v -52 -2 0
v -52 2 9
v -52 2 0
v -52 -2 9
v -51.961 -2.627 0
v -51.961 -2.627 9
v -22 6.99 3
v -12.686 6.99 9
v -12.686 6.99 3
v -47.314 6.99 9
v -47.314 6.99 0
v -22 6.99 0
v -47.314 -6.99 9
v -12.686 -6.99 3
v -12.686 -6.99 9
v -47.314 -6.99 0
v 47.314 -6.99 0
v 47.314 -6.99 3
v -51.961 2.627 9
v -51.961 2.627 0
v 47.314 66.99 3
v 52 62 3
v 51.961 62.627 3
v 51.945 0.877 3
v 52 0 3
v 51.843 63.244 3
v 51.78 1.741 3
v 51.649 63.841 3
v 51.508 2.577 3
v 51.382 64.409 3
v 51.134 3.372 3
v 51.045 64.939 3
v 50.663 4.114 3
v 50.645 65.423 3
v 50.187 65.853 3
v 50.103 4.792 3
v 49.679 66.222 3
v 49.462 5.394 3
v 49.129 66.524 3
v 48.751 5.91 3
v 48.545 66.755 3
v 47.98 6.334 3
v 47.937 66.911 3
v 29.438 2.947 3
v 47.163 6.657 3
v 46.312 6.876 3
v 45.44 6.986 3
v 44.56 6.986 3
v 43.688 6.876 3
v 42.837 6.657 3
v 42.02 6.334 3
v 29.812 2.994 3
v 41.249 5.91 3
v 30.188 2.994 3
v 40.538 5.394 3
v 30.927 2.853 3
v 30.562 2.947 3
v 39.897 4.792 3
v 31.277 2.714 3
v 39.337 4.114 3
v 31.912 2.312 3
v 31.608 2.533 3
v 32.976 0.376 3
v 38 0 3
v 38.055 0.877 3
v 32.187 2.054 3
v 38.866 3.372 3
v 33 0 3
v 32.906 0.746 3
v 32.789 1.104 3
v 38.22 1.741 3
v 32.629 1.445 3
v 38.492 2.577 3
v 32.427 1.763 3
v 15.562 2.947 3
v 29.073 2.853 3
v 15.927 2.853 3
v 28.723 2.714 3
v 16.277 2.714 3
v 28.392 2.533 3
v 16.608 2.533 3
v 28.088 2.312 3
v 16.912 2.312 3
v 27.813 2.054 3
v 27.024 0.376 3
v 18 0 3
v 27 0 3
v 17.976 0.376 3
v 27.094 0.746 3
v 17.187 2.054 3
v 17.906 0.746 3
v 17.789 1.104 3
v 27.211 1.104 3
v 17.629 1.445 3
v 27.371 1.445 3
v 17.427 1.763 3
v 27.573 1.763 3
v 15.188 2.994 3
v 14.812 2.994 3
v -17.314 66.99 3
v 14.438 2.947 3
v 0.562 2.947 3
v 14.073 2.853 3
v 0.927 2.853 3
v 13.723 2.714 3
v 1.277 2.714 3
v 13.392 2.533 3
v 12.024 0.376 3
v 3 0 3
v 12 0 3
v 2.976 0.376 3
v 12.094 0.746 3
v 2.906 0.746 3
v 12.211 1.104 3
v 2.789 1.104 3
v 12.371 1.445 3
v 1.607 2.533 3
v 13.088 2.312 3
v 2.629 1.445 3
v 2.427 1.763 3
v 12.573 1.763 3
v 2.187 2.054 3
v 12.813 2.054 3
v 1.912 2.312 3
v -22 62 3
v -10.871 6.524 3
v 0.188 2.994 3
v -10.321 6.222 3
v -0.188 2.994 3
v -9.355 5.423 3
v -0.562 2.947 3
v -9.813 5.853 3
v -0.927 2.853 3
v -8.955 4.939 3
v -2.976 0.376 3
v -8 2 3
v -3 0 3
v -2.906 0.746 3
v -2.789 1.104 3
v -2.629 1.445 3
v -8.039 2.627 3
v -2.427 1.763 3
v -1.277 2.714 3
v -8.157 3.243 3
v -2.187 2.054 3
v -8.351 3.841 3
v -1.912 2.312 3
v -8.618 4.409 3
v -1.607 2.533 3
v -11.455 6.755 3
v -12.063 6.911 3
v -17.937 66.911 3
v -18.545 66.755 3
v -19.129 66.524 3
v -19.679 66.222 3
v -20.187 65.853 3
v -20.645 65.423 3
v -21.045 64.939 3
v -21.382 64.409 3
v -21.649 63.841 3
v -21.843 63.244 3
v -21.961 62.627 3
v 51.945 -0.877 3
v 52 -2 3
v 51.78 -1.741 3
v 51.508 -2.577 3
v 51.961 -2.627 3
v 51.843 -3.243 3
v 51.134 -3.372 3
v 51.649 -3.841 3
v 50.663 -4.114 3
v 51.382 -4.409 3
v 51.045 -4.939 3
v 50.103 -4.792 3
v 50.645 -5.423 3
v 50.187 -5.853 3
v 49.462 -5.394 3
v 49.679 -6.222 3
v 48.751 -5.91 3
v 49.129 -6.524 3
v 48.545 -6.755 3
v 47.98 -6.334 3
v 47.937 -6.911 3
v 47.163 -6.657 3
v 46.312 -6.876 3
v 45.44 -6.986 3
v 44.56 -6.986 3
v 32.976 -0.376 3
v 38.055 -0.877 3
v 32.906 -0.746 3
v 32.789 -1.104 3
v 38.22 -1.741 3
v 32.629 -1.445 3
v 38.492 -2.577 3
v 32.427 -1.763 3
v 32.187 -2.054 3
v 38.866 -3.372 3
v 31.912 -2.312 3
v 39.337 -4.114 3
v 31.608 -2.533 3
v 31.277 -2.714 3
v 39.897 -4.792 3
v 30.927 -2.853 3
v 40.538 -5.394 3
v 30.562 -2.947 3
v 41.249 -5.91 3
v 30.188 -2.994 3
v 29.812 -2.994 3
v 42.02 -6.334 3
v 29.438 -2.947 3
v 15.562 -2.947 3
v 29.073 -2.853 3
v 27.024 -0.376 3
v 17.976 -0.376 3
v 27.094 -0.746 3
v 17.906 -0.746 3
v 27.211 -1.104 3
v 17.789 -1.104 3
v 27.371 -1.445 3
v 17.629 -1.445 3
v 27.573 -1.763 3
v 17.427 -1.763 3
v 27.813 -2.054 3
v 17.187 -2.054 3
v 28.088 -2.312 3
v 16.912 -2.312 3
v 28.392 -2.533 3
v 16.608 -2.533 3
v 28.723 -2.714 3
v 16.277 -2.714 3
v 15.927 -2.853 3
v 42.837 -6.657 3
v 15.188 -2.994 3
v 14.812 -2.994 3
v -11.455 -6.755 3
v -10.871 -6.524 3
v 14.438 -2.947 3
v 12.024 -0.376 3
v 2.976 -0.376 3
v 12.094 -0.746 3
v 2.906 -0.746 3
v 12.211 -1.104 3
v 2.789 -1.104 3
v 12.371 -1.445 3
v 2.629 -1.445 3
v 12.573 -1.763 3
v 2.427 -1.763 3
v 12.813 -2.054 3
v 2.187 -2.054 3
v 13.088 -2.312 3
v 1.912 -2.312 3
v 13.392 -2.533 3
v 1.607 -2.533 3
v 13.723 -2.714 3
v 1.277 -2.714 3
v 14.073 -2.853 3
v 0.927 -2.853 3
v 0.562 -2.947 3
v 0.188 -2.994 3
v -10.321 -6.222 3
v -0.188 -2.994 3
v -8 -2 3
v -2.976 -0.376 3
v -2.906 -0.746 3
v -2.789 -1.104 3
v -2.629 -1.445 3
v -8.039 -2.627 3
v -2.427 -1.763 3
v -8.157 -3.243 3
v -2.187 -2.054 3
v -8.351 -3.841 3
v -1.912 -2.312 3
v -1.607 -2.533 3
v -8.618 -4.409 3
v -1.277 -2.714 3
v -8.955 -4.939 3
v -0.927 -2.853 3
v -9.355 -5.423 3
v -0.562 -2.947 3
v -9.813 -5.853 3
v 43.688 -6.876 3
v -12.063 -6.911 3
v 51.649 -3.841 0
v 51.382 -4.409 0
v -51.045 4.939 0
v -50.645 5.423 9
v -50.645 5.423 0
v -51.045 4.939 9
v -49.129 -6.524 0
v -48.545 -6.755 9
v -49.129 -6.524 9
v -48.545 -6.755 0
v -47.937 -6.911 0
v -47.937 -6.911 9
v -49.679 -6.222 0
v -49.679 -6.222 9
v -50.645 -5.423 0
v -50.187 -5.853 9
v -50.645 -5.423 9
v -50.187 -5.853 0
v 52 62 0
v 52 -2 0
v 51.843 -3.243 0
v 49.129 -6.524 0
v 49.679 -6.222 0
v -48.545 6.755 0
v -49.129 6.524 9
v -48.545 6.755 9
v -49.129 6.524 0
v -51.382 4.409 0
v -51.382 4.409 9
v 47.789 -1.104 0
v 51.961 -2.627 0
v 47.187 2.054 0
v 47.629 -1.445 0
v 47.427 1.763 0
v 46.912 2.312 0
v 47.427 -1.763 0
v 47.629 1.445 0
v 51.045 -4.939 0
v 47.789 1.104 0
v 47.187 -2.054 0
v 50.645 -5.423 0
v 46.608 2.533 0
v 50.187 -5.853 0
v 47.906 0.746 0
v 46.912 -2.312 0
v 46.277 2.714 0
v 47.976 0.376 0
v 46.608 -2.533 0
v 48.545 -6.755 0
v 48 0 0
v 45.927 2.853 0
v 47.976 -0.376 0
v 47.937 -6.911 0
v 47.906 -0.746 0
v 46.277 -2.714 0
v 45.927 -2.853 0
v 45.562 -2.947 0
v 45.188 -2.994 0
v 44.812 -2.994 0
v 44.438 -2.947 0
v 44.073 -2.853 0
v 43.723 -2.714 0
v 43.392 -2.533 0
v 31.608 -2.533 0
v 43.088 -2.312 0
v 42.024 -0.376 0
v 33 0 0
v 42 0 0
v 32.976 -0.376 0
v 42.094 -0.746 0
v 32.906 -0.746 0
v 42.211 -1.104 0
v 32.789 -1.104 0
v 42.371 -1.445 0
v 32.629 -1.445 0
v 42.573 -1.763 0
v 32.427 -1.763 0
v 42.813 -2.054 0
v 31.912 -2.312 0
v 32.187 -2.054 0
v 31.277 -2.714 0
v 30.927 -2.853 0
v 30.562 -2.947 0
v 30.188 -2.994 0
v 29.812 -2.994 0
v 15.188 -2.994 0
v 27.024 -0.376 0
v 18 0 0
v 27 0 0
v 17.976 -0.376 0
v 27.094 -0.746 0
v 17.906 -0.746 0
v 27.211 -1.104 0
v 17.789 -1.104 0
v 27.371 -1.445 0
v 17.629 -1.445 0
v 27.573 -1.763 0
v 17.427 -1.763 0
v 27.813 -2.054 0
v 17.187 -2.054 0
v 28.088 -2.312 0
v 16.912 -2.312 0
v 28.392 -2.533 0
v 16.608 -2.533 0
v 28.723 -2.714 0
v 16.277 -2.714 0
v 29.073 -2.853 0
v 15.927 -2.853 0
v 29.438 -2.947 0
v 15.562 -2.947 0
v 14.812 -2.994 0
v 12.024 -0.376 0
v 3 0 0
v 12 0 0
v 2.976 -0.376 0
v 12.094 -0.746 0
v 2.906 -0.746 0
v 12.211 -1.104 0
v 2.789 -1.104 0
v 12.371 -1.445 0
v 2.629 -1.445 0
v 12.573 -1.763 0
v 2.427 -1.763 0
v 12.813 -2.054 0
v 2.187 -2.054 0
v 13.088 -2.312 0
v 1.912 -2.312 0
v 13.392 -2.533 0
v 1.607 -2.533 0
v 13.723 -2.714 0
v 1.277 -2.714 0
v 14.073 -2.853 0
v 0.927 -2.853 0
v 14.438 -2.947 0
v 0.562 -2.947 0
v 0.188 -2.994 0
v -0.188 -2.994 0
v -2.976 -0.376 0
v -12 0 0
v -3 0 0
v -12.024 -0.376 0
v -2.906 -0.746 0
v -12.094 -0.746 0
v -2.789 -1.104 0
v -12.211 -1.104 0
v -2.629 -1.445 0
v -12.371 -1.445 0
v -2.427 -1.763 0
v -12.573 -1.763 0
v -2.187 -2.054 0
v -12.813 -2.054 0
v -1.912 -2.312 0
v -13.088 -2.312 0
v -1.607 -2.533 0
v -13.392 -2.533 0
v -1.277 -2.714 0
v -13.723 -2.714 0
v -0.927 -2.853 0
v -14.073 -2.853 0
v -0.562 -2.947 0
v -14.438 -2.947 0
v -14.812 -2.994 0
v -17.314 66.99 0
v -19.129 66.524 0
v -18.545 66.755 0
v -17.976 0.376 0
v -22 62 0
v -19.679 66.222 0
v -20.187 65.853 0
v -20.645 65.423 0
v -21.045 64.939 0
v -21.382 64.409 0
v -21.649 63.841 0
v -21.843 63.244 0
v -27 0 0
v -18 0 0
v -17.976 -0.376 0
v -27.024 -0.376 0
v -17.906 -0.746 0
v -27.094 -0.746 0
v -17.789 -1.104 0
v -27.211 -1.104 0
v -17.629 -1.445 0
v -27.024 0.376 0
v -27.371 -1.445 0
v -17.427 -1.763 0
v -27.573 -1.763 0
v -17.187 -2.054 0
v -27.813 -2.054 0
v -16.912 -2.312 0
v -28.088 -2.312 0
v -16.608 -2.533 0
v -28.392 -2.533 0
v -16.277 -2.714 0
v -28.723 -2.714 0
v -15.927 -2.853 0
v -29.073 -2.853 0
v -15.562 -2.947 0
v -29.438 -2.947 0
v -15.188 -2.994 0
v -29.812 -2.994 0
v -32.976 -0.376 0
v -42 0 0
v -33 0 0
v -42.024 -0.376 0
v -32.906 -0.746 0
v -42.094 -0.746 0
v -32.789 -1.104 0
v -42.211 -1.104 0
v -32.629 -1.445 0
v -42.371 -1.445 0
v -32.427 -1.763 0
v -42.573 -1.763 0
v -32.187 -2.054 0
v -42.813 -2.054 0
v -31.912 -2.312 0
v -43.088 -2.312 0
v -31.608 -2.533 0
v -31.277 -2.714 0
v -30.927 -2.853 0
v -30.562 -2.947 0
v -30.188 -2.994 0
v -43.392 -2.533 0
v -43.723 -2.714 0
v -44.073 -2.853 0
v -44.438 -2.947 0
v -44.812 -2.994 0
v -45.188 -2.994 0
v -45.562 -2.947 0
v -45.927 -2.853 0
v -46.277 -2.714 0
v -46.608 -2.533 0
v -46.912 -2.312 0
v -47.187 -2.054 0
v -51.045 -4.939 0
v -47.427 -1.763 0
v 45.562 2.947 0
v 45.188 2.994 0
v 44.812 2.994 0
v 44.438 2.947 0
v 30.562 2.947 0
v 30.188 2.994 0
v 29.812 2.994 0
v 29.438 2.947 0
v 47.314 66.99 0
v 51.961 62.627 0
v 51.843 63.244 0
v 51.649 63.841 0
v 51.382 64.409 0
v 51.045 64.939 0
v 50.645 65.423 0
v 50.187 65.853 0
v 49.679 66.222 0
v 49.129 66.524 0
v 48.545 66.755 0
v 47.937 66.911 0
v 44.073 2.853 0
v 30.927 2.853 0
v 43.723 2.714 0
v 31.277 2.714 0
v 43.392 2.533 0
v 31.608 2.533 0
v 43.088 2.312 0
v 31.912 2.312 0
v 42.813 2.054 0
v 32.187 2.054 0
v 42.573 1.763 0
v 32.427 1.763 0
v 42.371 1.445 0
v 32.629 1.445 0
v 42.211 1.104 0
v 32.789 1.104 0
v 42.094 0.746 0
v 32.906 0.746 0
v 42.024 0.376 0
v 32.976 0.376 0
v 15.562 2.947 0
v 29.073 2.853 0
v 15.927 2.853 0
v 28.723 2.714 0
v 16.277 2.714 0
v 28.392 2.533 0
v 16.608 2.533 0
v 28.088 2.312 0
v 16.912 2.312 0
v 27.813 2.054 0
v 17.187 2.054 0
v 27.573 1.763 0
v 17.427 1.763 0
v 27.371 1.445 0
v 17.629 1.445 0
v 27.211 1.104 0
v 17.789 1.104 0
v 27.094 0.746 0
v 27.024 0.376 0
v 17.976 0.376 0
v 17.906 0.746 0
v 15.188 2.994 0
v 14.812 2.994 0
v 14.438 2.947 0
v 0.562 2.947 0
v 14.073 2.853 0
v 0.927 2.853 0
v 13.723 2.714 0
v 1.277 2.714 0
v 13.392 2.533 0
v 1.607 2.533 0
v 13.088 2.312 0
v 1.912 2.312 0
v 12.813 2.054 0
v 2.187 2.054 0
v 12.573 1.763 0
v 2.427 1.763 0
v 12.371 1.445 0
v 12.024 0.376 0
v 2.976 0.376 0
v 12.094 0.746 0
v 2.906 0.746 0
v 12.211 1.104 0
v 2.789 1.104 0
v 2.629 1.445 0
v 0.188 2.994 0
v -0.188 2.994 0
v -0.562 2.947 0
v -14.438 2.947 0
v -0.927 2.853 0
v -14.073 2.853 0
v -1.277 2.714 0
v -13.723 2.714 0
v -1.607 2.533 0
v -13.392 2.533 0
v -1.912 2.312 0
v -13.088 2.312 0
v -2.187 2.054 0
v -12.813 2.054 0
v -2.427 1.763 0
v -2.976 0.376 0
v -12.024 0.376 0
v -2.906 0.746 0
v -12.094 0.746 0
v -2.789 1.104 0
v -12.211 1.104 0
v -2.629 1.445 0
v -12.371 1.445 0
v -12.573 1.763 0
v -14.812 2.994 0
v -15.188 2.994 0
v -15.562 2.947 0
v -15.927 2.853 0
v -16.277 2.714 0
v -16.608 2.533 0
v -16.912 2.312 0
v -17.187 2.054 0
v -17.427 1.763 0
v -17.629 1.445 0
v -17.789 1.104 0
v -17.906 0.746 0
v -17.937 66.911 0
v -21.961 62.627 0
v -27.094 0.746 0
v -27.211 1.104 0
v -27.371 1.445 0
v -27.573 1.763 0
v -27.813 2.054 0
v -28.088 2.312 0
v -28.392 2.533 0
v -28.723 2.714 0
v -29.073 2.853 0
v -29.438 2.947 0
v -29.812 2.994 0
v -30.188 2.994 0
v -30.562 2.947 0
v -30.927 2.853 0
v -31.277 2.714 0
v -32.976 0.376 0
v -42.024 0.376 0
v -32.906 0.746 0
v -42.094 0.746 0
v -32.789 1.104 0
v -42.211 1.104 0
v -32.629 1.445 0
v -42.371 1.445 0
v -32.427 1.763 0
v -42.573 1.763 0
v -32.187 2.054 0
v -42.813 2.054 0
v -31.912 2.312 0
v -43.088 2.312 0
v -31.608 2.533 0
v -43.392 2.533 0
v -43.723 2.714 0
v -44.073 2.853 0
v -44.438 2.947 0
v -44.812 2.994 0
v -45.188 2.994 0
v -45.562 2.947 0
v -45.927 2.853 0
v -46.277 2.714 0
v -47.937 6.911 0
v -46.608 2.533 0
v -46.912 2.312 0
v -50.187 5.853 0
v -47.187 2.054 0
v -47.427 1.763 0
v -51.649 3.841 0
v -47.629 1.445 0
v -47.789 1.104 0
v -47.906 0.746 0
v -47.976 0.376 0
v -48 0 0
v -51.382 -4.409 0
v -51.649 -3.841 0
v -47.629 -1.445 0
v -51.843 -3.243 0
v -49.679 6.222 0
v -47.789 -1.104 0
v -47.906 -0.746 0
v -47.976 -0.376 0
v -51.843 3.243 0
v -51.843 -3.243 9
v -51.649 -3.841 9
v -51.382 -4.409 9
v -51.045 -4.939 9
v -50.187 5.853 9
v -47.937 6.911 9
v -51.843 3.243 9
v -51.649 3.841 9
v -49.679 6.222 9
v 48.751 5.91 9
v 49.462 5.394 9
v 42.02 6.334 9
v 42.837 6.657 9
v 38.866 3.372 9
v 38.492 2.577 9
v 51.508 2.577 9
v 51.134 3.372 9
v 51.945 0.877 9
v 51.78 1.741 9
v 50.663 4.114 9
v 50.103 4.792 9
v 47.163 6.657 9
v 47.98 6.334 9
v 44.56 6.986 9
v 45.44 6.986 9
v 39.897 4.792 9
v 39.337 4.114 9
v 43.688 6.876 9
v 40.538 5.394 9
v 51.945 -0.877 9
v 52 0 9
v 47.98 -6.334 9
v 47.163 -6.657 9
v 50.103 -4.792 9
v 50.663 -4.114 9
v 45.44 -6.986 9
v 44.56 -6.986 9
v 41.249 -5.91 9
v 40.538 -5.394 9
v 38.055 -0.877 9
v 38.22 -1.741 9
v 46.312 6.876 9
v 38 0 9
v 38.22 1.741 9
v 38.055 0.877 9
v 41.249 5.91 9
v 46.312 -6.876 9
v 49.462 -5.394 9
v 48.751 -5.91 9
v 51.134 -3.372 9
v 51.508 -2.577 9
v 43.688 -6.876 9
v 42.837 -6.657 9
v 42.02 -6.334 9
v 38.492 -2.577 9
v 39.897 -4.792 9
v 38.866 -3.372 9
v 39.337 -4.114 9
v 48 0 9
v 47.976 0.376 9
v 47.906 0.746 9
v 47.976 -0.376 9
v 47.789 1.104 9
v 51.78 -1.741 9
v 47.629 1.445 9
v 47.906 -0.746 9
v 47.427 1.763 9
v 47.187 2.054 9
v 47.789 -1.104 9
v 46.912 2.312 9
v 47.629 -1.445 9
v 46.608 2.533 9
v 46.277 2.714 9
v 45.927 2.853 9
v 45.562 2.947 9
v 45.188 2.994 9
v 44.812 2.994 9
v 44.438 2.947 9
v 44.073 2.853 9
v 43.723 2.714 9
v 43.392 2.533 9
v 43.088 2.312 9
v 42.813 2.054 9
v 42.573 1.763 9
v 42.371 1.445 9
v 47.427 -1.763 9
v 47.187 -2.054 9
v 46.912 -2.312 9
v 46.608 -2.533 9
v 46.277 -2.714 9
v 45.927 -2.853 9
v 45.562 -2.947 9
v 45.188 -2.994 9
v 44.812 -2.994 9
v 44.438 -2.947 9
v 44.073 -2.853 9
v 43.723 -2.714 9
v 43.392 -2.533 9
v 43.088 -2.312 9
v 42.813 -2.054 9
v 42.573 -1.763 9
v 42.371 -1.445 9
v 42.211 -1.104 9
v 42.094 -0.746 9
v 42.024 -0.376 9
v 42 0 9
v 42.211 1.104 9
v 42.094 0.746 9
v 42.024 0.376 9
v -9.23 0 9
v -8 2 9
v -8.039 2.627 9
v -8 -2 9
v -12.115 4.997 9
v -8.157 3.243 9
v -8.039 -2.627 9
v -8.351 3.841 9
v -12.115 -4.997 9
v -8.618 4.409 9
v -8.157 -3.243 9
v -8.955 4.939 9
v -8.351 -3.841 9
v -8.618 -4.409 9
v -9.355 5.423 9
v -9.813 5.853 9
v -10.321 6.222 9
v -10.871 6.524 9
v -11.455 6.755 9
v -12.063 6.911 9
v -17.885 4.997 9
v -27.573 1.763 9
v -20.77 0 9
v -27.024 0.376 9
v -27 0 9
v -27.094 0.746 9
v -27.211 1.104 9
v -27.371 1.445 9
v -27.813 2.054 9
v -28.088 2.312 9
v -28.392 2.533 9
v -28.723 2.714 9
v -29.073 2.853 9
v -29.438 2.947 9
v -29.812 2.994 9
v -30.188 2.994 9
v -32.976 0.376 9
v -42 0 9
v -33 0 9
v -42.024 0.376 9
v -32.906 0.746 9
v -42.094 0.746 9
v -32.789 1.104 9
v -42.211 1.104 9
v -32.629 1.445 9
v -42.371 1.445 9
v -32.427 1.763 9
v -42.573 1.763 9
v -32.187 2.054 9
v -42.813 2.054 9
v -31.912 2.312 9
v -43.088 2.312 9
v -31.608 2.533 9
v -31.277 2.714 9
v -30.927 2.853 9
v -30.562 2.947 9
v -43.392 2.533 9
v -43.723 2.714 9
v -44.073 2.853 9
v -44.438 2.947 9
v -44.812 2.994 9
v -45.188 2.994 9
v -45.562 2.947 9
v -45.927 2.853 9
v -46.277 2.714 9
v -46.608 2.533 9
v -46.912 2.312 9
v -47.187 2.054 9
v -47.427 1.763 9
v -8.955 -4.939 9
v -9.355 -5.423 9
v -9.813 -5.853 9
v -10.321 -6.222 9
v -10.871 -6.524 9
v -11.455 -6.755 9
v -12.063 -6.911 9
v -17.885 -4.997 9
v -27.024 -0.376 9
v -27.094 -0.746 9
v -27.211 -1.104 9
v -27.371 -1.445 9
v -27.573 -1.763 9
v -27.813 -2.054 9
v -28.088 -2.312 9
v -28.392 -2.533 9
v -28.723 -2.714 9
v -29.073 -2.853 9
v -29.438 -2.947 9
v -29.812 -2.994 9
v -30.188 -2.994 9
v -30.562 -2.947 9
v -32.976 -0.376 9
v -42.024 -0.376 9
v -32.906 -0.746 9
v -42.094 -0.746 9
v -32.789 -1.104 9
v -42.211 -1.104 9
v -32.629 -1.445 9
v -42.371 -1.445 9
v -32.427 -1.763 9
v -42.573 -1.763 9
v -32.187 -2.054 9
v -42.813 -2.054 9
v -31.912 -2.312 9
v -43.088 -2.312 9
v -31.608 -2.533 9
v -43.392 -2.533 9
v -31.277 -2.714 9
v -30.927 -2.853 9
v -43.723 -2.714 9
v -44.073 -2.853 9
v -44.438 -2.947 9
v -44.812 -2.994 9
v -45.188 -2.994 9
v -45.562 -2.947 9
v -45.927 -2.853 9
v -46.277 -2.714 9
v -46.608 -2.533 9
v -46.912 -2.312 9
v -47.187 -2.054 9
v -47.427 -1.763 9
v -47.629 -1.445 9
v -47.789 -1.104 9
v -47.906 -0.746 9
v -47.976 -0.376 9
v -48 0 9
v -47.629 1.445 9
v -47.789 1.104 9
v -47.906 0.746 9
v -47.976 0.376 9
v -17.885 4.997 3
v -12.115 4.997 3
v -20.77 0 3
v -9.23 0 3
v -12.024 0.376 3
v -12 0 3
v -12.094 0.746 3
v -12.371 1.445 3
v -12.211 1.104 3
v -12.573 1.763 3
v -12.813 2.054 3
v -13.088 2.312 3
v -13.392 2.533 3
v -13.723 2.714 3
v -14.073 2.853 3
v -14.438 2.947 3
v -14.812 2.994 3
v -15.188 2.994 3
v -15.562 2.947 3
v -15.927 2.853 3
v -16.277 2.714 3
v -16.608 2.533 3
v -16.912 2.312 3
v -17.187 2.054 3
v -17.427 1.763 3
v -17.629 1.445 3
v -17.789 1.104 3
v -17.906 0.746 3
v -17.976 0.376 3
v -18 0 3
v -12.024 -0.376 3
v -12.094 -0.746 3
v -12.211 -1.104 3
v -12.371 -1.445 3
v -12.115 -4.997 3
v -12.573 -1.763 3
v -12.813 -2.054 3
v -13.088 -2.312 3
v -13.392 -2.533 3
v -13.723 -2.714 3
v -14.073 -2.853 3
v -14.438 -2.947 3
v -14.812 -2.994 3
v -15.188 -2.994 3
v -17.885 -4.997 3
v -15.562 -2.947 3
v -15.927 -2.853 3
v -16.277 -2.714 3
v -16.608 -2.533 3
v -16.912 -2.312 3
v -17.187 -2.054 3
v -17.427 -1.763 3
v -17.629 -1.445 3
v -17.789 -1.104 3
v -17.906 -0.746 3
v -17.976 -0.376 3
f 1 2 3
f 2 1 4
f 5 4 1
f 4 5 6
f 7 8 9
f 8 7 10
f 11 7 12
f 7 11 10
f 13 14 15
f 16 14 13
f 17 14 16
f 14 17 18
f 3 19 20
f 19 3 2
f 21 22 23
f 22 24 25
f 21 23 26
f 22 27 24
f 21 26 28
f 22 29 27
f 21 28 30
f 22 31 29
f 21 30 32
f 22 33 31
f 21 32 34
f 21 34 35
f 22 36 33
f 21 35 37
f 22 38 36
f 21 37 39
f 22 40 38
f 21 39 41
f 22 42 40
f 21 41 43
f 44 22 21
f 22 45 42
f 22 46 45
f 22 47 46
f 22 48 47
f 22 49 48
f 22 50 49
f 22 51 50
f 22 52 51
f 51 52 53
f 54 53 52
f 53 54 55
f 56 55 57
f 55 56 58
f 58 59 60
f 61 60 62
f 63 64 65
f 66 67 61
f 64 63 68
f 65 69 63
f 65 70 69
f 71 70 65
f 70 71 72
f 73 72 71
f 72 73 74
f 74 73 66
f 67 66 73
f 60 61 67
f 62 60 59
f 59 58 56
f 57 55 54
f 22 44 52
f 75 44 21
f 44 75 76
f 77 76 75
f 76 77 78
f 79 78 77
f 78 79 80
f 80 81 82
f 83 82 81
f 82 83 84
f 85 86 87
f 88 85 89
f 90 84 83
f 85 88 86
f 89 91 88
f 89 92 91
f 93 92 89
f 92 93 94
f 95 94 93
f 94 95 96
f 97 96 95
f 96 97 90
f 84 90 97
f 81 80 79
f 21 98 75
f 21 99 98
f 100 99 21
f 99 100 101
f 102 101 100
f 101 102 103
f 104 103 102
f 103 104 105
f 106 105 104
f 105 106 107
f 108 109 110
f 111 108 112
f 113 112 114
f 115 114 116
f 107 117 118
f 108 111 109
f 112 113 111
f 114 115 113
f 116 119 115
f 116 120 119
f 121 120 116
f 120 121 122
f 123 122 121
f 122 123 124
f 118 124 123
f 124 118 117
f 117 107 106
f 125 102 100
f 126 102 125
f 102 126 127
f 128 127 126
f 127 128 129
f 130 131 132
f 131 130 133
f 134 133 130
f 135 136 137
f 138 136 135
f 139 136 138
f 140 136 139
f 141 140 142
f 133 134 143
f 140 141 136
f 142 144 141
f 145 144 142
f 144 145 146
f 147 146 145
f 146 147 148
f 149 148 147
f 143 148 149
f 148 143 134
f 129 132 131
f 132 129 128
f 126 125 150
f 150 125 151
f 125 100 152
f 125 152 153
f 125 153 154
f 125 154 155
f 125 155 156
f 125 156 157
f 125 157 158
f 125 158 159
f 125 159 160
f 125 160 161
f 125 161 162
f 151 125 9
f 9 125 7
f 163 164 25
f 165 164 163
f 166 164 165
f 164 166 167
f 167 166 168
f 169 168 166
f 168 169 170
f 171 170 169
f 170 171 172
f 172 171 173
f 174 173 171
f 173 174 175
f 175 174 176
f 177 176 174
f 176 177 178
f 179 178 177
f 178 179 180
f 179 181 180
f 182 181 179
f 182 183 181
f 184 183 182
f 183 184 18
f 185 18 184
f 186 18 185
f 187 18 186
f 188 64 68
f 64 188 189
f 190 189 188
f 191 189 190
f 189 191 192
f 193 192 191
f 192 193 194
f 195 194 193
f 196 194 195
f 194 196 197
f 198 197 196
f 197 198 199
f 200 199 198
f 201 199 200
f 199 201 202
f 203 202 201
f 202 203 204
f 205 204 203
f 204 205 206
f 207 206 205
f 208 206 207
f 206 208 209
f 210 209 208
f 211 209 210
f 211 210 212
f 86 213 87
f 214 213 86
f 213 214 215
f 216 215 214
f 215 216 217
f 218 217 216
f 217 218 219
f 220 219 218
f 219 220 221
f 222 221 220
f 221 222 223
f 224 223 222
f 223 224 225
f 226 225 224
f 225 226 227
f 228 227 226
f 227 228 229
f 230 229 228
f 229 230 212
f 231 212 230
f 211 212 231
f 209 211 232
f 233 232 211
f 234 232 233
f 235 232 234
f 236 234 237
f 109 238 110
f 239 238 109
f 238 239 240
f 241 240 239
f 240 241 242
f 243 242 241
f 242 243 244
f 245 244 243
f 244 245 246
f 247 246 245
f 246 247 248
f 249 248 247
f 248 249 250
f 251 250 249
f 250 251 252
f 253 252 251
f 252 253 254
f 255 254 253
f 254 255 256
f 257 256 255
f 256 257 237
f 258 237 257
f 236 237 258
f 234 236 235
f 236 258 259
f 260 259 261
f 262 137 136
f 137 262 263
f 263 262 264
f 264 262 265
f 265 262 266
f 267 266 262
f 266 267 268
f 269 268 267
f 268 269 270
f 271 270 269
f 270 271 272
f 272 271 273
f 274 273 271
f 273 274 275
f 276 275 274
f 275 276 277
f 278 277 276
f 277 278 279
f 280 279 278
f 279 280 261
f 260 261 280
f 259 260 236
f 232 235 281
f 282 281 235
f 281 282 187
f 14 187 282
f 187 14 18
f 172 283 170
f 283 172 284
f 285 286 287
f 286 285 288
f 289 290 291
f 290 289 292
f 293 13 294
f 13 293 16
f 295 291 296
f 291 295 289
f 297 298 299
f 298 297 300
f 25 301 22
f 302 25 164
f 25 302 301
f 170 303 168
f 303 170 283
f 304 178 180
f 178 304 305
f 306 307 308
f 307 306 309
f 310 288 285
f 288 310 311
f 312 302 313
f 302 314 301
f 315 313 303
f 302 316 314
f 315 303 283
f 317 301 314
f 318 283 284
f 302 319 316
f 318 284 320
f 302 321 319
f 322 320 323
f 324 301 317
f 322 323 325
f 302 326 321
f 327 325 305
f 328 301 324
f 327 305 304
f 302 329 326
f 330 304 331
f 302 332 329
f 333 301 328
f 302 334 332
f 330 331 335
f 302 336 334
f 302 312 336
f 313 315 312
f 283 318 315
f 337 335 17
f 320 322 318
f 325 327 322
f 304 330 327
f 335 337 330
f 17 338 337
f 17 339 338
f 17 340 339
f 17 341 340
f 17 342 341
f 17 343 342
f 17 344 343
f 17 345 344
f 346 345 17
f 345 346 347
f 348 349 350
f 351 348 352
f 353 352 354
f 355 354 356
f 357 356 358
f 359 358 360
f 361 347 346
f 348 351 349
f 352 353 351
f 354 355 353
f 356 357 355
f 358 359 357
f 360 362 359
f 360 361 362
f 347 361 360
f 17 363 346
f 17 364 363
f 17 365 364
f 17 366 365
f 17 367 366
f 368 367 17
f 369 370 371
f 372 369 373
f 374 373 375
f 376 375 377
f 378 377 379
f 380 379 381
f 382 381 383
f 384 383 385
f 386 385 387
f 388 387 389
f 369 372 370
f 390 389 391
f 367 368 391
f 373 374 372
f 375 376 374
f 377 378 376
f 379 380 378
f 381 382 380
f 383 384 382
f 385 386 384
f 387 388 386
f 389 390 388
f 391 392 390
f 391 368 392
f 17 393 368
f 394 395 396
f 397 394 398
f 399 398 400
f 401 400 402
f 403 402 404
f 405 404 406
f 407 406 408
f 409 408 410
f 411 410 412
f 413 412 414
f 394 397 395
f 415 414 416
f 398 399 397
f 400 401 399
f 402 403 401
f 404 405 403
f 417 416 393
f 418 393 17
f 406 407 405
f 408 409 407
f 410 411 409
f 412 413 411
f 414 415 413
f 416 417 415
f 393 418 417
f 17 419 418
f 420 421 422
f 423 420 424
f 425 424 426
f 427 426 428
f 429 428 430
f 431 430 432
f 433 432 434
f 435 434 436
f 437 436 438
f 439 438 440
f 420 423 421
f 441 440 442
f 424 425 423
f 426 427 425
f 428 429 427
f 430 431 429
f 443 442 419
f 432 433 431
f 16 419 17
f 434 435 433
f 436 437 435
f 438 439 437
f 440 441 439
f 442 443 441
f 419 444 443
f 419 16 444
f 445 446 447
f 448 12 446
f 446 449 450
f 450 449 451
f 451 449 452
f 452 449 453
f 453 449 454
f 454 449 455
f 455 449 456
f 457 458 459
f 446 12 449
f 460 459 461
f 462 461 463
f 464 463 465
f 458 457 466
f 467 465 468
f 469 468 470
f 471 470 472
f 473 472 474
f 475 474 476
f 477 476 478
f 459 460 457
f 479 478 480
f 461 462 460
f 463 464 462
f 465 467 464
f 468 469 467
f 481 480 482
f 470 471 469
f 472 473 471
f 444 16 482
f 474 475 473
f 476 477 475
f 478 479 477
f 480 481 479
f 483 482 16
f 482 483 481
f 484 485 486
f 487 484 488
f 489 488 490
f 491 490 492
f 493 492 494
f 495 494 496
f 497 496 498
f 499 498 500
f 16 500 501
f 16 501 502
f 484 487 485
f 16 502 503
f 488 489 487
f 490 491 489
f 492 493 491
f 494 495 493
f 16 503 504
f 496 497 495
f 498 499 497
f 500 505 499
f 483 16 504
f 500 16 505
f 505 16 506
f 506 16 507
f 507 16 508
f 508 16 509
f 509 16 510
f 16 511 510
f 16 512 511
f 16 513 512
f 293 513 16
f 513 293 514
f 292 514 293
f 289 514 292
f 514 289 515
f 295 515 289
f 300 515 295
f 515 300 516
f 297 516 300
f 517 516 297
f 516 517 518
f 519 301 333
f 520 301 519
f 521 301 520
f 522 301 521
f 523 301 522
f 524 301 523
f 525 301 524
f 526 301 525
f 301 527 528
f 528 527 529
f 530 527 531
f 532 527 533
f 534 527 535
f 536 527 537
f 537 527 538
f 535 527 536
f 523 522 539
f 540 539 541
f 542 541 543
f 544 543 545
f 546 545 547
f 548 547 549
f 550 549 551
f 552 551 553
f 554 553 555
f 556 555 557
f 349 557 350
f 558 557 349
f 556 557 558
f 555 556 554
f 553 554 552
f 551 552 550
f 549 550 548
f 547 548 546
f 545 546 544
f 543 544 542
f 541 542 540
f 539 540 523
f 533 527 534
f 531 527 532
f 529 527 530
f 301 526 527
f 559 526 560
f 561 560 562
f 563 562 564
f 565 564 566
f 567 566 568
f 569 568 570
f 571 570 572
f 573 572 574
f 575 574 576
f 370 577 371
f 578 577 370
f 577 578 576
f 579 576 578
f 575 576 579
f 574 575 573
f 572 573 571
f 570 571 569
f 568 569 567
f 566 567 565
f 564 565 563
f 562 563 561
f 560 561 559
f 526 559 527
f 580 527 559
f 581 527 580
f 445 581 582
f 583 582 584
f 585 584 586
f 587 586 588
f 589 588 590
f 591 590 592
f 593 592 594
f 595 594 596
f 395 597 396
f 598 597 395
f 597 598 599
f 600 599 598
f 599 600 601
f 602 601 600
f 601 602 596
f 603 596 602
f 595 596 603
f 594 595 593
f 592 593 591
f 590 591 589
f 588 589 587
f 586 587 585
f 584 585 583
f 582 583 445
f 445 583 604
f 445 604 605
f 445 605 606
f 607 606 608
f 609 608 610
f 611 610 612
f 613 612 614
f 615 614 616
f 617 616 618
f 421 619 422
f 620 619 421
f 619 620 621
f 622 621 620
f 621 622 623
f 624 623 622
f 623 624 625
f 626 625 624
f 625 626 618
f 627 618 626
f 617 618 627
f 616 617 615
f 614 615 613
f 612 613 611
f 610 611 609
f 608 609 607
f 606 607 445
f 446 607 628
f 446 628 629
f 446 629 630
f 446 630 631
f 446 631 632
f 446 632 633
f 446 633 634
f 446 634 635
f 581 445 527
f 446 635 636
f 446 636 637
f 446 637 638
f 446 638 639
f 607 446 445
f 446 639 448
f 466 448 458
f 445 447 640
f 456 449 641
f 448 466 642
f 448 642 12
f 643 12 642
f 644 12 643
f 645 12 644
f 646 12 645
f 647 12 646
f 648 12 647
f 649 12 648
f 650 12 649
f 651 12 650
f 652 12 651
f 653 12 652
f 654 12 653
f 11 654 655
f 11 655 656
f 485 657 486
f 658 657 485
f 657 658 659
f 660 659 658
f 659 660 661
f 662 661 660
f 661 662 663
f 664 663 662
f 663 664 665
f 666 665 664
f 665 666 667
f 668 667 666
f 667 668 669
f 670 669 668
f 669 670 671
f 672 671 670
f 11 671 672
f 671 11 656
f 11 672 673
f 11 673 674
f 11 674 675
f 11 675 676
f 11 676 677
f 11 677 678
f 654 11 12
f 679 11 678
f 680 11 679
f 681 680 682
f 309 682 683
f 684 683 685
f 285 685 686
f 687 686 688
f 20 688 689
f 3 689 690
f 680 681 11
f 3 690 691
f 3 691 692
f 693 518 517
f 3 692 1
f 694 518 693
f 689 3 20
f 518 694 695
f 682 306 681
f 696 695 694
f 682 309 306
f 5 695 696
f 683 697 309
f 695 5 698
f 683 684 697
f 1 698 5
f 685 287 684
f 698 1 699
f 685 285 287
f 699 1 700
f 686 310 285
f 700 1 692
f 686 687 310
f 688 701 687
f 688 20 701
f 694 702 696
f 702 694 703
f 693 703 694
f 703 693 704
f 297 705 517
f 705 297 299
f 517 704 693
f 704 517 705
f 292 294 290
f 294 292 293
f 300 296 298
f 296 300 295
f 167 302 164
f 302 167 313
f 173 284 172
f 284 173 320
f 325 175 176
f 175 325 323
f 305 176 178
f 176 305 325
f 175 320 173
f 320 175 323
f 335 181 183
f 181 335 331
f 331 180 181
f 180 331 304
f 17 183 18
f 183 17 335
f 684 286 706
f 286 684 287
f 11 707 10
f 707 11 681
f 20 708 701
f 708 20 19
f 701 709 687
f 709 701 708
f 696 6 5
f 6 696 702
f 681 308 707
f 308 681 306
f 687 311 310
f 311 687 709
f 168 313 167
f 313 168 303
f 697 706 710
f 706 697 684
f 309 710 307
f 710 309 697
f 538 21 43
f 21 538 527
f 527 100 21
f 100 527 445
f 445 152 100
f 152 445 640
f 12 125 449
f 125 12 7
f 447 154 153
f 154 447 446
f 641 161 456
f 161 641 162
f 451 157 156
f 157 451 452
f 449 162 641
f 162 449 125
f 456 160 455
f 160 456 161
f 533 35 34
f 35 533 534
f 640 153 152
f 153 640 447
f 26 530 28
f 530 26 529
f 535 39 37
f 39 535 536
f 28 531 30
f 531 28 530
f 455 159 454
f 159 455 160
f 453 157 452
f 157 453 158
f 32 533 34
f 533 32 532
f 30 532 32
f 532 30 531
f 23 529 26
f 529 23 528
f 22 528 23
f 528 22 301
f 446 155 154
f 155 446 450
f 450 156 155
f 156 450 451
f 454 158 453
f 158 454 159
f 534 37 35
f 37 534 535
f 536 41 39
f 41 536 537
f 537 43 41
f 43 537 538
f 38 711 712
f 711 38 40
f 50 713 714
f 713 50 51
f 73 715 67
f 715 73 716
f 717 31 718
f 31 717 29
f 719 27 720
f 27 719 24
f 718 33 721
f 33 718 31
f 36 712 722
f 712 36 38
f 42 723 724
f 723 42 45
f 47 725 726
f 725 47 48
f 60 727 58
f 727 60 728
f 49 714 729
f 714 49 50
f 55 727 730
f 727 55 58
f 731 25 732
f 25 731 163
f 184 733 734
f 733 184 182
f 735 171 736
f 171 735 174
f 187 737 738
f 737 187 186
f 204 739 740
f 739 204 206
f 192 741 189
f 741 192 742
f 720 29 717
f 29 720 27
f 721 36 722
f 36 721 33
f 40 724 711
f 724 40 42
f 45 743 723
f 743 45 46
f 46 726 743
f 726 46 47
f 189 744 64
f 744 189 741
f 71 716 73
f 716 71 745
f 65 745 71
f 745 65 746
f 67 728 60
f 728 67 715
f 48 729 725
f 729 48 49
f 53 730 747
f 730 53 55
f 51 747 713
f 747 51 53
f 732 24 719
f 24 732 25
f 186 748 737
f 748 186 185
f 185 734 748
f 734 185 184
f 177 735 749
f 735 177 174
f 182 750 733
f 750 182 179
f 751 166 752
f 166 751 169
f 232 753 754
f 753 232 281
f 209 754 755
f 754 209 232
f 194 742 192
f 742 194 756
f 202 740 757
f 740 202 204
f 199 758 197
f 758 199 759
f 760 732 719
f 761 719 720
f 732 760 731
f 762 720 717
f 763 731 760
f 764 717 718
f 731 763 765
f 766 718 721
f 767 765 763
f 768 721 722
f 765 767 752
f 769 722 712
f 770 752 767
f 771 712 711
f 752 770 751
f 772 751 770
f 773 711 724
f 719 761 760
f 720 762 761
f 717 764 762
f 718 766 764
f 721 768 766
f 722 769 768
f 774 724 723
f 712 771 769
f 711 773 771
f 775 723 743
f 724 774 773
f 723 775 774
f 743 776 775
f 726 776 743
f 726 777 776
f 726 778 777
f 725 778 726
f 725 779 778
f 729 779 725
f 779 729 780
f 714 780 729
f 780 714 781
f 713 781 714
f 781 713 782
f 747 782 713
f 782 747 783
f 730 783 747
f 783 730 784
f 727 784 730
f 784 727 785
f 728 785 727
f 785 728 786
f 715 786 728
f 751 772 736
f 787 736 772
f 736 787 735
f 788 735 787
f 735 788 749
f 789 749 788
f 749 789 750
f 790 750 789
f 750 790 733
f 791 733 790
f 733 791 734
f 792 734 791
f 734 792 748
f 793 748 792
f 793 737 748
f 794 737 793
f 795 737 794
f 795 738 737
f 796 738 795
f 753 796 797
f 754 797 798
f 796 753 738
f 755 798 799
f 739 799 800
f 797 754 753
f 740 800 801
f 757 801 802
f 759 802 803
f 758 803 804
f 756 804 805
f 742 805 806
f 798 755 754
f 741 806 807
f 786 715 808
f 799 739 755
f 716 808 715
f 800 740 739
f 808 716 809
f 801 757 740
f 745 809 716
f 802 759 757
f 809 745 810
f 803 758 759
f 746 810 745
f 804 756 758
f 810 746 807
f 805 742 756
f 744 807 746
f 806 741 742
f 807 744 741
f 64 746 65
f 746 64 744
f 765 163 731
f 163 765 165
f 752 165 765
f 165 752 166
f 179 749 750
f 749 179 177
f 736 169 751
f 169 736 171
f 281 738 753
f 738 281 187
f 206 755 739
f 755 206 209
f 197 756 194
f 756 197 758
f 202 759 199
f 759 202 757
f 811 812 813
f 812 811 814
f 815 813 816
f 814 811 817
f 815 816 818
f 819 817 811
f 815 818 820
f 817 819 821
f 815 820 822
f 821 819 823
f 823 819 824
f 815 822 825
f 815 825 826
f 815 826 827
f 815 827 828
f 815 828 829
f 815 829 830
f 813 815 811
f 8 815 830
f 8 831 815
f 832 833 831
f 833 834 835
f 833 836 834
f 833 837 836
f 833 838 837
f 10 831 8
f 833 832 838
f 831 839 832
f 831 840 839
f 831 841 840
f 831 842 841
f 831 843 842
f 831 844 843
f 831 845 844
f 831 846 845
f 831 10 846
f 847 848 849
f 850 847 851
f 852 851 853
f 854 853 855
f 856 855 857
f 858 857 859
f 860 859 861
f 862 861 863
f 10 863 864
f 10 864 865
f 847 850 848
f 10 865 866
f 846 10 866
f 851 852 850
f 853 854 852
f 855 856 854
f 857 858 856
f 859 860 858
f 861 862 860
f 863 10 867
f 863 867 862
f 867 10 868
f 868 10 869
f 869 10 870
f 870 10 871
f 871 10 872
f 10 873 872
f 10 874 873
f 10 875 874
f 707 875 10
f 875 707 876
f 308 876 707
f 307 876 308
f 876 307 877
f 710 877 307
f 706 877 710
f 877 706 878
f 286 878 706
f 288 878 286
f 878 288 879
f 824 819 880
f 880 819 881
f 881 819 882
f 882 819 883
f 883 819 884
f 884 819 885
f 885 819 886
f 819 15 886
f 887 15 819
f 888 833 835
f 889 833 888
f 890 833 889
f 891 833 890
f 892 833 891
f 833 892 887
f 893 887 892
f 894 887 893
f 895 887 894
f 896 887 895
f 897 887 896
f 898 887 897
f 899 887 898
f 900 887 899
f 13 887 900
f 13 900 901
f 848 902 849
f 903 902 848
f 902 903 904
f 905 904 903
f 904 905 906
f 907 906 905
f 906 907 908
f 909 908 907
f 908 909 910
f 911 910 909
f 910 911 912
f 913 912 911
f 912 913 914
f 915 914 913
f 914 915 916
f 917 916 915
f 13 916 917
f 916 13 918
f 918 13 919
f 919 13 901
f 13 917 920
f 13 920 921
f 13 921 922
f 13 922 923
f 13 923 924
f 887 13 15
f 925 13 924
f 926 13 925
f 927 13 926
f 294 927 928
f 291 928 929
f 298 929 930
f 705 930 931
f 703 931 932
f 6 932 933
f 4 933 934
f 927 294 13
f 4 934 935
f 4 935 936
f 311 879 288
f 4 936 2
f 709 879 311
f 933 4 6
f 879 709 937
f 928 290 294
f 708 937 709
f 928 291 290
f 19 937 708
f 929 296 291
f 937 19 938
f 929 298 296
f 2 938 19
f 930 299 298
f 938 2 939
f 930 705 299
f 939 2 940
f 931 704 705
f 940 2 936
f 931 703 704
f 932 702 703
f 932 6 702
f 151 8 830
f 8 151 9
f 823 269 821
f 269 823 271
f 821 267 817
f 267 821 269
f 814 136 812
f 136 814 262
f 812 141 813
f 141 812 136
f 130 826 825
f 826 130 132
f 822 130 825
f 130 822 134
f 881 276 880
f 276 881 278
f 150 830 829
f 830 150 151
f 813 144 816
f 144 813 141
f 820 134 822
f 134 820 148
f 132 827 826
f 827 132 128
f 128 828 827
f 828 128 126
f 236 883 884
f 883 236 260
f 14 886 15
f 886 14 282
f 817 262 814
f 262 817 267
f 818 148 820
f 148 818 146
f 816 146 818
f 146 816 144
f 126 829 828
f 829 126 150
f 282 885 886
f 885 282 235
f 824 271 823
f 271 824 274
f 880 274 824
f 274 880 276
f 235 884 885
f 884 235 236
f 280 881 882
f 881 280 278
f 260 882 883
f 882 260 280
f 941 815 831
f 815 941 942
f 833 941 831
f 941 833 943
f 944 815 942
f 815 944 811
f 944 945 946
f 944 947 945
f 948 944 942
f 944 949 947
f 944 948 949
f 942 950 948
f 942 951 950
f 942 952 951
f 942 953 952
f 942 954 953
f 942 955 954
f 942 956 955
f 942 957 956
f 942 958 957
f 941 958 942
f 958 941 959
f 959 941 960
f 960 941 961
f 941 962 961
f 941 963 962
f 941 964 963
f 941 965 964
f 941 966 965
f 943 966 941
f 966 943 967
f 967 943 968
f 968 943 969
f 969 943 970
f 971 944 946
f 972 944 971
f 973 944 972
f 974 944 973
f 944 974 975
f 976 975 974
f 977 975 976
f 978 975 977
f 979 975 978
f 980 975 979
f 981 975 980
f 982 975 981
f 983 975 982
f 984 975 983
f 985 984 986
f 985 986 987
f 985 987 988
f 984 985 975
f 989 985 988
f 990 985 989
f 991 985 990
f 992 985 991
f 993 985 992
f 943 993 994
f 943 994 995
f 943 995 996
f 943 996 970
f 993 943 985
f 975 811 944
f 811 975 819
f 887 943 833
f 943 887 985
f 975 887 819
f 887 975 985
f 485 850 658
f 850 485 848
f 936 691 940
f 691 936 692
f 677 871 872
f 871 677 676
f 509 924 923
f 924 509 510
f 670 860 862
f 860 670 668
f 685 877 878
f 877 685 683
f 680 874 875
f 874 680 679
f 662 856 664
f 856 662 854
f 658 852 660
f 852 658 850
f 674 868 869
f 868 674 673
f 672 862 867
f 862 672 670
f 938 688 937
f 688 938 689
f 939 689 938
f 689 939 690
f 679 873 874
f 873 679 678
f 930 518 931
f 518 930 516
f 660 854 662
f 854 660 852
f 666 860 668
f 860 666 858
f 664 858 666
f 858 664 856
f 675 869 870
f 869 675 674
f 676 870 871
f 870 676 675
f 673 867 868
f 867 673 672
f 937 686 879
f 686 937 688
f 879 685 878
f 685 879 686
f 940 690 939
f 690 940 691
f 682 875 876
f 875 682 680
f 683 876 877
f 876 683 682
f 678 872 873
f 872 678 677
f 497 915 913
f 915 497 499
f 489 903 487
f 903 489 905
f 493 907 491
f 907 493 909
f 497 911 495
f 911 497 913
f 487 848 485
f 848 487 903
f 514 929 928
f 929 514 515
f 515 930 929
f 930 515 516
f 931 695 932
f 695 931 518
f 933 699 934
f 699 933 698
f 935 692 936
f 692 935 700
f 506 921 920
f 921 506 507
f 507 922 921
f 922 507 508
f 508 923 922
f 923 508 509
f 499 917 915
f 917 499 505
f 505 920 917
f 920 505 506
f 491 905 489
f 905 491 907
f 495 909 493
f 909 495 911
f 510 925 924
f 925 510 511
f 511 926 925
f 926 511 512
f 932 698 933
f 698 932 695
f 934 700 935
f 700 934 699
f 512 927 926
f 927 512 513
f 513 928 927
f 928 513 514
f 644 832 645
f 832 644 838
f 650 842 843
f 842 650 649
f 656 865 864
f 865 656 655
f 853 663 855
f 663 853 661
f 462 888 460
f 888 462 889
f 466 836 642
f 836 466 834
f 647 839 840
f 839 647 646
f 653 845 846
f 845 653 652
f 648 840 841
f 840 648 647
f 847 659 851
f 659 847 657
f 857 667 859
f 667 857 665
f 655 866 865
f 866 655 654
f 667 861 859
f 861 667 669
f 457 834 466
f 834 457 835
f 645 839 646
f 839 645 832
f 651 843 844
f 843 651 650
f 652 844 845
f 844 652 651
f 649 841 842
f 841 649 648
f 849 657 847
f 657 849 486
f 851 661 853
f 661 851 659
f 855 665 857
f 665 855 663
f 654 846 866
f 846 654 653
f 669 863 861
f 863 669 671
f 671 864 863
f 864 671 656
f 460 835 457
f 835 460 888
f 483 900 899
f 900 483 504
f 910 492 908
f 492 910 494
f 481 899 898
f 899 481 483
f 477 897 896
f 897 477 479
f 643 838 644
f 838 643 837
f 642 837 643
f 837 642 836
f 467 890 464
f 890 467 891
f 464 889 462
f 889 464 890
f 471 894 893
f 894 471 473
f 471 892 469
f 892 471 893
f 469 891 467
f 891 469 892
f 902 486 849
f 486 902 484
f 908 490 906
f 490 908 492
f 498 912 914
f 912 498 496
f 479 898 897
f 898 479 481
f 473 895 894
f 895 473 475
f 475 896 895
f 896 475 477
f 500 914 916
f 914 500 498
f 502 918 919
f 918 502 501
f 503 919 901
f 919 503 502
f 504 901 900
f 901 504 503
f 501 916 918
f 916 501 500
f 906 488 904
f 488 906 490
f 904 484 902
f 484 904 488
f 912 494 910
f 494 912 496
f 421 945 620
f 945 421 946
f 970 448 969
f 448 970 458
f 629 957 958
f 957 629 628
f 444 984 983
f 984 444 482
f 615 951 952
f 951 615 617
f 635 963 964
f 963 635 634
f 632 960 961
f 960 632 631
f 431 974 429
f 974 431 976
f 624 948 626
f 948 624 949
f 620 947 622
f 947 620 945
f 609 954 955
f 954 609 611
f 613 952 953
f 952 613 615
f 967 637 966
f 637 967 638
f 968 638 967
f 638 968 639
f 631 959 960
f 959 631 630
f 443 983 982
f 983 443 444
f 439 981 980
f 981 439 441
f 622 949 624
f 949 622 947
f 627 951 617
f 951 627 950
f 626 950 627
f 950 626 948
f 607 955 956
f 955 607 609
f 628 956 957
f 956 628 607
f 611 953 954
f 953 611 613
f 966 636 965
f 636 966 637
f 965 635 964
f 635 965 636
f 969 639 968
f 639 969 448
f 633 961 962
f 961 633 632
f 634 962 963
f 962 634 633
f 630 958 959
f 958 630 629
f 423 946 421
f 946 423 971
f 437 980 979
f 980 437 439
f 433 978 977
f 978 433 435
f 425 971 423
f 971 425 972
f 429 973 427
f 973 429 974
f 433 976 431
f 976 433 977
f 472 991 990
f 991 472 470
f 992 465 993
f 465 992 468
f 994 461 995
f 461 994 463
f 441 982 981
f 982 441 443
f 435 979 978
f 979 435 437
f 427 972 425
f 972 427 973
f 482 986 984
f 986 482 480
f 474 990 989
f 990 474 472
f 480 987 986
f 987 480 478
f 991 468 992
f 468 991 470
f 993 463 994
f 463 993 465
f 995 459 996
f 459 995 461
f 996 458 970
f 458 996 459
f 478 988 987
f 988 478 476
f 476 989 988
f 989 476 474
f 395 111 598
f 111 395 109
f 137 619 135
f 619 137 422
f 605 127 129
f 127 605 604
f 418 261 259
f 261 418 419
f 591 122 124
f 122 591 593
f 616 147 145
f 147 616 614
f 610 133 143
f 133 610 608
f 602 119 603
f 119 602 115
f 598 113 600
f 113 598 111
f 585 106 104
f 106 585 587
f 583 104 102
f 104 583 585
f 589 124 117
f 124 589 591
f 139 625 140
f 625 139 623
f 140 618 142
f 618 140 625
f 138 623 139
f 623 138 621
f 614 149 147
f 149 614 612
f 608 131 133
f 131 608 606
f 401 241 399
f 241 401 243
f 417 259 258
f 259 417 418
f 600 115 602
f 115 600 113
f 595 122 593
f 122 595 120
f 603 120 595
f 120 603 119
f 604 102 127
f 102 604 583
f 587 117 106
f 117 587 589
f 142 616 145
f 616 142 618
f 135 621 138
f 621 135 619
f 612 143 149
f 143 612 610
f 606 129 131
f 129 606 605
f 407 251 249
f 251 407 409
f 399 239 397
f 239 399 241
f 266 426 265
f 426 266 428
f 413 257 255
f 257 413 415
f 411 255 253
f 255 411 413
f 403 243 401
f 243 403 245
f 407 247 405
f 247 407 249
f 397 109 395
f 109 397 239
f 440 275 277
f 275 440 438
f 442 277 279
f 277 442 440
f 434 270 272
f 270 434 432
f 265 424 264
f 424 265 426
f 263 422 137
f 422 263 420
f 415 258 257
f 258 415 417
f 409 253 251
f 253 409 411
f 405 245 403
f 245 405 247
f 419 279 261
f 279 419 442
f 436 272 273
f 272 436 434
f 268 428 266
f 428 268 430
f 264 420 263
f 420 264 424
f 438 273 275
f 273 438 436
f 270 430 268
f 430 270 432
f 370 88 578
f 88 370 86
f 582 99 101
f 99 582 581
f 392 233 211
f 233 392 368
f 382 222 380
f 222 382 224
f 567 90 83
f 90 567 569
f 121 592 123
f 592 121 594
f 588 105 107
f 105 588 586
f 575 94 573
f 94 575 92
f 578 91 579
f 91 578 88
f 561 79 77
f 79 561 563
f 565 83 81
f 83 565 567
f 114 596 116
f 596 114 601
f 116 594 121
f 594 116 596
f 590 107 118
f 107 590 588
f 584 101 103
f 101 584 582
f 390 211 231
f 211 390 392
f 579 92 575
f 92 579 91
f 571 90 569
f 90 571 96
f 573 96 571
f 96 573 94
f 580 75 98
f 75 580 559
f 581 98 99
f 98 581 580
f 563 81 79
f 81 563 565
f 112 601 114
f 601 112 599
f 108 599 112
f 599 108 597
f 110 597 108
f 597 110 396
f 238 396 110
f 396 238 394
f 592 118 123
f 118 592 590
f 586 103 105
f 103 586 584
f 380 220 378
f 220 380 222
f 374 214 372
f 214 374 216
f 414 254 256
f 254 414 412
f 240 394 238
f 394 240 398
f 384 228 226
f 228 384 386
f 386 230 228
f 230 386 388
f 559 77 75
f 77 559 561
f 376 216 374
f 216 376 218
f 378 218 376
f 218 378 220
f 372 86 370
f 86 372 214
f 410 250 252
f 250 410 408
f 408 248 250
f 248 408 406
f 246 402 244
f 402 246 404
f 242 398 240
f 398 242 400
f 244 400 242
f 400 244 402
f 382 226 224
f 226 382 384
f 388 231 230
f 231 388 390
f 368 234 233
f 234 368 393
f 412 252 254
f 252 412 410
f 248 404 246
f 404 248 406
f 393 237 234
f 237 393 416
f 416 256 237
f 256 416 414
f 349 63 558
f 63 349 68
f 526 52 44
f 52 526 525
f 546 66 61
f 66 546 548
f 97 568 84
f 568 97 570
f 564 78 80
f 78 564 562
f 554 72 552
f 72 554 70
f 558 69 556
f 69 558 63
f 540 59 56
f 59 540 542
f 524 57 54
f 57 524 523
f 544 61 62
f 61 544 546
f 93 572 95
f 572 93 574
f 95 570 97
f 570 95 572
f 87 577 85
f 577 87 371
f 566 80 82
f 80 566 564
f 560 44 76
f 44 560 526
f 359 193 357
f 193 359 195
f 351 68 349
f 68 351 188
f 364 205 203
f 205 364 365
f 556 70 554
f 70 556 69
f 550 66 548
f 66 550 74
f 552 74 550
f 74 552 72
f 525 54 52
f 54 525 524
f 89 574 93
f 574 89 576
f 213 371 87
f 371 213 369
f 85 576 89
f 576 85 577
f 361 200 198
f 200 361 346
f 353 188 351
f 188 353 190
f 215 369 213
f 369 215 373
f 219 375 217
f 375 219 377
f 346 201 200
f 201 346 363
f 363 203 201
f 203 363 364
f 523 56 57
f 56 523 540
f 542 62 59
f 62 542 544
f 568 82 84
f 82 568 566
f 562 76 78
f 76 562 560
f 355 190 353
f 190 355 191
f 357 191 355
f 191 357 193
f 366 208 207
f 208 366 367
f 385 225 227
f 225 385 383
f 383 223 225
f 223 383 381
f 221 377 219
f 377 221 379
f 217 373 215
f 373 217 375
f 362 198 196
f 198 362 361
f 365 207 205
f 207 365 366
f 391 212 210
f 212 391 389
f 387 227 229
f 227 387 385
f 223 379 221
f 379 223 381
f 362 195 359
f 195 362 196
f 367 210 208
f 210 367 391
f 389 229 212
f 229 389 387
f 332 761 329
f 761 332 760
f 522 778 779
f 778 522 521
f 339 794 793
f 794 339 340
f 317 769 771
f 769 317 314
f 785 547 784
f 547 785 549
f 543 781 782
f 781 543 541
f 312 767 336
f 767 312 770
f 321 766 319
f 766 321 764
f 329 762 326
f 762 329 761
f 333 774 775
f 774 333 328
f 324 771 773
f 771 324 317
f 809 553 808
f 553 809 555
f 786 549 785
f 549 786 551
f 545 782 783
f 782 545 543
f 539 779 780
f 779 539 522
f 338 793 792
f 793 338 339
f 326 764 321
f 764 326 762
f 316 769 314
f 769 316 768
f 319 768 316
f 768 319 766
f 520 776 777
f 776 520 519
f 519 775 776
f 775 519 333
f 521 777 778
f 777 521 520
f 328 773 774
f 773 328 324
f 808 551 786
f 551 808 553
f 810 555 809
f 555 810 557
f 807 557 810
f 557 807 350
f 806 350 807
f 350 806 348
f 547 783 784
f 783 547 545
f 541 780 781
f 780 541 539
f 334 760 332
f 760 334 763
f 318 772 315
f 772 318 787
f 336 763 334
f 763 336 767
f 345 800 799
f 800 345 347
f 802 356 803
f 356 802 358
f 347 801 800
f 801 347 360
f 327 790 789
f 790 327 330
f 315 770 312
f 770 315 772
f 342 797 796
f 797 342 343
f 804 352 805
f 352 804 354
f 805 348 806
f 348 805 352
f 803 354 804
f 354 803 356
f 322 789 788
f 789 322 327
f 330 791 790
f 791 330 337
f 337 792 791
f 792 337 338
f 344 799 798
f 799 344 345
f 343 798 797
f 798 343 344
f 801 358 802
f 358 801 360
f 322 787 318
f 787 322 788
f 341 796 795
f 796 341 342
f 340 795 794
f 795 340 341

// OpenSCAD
$fn = 50;


difference() {
	union() {
		hull() {
			translate(v = [-47.0000000000, 2.0000000000, 0]) {
				cylinder(h = 3, r = 5);
			}
			translate(v = [47.0000000000, 2.0000000000, 0]) {
				cylinder(h = 3, r = 5);
			}
			translate(v = [-47.0000000000, -2.0000000000, 0]) {
				cylinder(h = 3, r = 5);
			}
			translate(v = [47.0000000000, -2.0000000000, 0]) {
				cylinder(h = 3, r = 5);
			}
		}
		translate(v = [15, 30, 0]) {
			hull() {
				translate(v = [-32.0000000000, 32.0000000000, 0]) {
					cylinder(h = 3, r = 5);
				}
				translate(v = [32.0000000000, 32.0000000000, 0]) {
					cylinder(h = 3, r = 5);
				}
				translate(v = [-32.0000000000, -32.0000000000, 0]) {
					cylinder(h = 3, r = 5);
				}
				translate(v = [32.0000000000, -32.0000000000, 0]) {
					cylinder(h = 3, r = 5);
				}
			}
		}
		translate(v = [45.0000000000, 0, 0]) {
			cylinder(h = 9, r = 7.0000000000);
		}
		translate(v = [-30.0000000000, 0, 0]) {
			hull() {
				translate(v = [-17.0000000000, 2.0000000000, 0]) {
					cylinder(h = 9, r = 5);
				}
				translate(v = [17.0000000000, 2.0000000000, 0]) {
					cylinder(h = 9, r = 5);
				}
				translate(v = [-17.0000000000, -2.0000000000, 0]) {
					cylinder(h = 9, r = 5);
				}
				translate(v = [17.0000000000, -2.0000000000, 0]) {
					cylinder(h = 9, r = 5);
				}
			}
		}
	}
	union() {
		translate(v = [-15.0000000000, 0, 9]) {
			rotate(a = [0, 0, 0]) {
				difference() {
					union() {
						translate(v = [0, 0, -6]) {
							linear_extrude(height = 6) {
								polygon(points = [[5.7700000000, 0.0000000000], [2.8850000000, 4.9969665798], [-2.8850000000, 4.9969665798], [-5.7700000000, 0.0000000000], [-2.8850000000, -4.9969665798], [2.8850000000, -4.9969665798]]);
							}
						}
					}
					union();
				}
			}
		}
		translate(v = [-45.0000000000, 0.0000000000, 0]) {
			translate(v = [0, 0, -50]) {
				cylinder(h = 100, r = 3.0000000000);
			}
		}
		translate(v = [-30.0000000000, 0.0000000000, 0]) {
			translate(v = [0, 0, -50]) {
				cylinder(h = 100, r = 3.0000000000);
			}
		}
		translate(v = [-15.0000000000, 0.0000000000, 0]) {
			translate(v = [0, 0, -50]) {
				cylinder(h = 100, r = 3.0000000000);
			}
		}
		translate(v = [0, 0, -50]) {
			cylinder(h = 100, r = 3.0000000000);
		}
		translate(v = [15.0000000000, 0.0000000000, 0]) {
			translate(v = [0, 0, -50]) {
				cylinder(h = 100, r = 3.0000000000);
			}
		}
		translate(v = [30.0000000000, 0.0000000000, 0]) {
			translate(v = [0, 0, -50]) {
				cylinder(h = 100, r = 3.0000000000);
			}
		}
		translate(v = [45.0000000000, 0.0000000000, 0]) {
			translate(v = [0, 0, -50]) {
				cylinder(h = 100, r = 3.0000000000);
			}
		}
	}
}
